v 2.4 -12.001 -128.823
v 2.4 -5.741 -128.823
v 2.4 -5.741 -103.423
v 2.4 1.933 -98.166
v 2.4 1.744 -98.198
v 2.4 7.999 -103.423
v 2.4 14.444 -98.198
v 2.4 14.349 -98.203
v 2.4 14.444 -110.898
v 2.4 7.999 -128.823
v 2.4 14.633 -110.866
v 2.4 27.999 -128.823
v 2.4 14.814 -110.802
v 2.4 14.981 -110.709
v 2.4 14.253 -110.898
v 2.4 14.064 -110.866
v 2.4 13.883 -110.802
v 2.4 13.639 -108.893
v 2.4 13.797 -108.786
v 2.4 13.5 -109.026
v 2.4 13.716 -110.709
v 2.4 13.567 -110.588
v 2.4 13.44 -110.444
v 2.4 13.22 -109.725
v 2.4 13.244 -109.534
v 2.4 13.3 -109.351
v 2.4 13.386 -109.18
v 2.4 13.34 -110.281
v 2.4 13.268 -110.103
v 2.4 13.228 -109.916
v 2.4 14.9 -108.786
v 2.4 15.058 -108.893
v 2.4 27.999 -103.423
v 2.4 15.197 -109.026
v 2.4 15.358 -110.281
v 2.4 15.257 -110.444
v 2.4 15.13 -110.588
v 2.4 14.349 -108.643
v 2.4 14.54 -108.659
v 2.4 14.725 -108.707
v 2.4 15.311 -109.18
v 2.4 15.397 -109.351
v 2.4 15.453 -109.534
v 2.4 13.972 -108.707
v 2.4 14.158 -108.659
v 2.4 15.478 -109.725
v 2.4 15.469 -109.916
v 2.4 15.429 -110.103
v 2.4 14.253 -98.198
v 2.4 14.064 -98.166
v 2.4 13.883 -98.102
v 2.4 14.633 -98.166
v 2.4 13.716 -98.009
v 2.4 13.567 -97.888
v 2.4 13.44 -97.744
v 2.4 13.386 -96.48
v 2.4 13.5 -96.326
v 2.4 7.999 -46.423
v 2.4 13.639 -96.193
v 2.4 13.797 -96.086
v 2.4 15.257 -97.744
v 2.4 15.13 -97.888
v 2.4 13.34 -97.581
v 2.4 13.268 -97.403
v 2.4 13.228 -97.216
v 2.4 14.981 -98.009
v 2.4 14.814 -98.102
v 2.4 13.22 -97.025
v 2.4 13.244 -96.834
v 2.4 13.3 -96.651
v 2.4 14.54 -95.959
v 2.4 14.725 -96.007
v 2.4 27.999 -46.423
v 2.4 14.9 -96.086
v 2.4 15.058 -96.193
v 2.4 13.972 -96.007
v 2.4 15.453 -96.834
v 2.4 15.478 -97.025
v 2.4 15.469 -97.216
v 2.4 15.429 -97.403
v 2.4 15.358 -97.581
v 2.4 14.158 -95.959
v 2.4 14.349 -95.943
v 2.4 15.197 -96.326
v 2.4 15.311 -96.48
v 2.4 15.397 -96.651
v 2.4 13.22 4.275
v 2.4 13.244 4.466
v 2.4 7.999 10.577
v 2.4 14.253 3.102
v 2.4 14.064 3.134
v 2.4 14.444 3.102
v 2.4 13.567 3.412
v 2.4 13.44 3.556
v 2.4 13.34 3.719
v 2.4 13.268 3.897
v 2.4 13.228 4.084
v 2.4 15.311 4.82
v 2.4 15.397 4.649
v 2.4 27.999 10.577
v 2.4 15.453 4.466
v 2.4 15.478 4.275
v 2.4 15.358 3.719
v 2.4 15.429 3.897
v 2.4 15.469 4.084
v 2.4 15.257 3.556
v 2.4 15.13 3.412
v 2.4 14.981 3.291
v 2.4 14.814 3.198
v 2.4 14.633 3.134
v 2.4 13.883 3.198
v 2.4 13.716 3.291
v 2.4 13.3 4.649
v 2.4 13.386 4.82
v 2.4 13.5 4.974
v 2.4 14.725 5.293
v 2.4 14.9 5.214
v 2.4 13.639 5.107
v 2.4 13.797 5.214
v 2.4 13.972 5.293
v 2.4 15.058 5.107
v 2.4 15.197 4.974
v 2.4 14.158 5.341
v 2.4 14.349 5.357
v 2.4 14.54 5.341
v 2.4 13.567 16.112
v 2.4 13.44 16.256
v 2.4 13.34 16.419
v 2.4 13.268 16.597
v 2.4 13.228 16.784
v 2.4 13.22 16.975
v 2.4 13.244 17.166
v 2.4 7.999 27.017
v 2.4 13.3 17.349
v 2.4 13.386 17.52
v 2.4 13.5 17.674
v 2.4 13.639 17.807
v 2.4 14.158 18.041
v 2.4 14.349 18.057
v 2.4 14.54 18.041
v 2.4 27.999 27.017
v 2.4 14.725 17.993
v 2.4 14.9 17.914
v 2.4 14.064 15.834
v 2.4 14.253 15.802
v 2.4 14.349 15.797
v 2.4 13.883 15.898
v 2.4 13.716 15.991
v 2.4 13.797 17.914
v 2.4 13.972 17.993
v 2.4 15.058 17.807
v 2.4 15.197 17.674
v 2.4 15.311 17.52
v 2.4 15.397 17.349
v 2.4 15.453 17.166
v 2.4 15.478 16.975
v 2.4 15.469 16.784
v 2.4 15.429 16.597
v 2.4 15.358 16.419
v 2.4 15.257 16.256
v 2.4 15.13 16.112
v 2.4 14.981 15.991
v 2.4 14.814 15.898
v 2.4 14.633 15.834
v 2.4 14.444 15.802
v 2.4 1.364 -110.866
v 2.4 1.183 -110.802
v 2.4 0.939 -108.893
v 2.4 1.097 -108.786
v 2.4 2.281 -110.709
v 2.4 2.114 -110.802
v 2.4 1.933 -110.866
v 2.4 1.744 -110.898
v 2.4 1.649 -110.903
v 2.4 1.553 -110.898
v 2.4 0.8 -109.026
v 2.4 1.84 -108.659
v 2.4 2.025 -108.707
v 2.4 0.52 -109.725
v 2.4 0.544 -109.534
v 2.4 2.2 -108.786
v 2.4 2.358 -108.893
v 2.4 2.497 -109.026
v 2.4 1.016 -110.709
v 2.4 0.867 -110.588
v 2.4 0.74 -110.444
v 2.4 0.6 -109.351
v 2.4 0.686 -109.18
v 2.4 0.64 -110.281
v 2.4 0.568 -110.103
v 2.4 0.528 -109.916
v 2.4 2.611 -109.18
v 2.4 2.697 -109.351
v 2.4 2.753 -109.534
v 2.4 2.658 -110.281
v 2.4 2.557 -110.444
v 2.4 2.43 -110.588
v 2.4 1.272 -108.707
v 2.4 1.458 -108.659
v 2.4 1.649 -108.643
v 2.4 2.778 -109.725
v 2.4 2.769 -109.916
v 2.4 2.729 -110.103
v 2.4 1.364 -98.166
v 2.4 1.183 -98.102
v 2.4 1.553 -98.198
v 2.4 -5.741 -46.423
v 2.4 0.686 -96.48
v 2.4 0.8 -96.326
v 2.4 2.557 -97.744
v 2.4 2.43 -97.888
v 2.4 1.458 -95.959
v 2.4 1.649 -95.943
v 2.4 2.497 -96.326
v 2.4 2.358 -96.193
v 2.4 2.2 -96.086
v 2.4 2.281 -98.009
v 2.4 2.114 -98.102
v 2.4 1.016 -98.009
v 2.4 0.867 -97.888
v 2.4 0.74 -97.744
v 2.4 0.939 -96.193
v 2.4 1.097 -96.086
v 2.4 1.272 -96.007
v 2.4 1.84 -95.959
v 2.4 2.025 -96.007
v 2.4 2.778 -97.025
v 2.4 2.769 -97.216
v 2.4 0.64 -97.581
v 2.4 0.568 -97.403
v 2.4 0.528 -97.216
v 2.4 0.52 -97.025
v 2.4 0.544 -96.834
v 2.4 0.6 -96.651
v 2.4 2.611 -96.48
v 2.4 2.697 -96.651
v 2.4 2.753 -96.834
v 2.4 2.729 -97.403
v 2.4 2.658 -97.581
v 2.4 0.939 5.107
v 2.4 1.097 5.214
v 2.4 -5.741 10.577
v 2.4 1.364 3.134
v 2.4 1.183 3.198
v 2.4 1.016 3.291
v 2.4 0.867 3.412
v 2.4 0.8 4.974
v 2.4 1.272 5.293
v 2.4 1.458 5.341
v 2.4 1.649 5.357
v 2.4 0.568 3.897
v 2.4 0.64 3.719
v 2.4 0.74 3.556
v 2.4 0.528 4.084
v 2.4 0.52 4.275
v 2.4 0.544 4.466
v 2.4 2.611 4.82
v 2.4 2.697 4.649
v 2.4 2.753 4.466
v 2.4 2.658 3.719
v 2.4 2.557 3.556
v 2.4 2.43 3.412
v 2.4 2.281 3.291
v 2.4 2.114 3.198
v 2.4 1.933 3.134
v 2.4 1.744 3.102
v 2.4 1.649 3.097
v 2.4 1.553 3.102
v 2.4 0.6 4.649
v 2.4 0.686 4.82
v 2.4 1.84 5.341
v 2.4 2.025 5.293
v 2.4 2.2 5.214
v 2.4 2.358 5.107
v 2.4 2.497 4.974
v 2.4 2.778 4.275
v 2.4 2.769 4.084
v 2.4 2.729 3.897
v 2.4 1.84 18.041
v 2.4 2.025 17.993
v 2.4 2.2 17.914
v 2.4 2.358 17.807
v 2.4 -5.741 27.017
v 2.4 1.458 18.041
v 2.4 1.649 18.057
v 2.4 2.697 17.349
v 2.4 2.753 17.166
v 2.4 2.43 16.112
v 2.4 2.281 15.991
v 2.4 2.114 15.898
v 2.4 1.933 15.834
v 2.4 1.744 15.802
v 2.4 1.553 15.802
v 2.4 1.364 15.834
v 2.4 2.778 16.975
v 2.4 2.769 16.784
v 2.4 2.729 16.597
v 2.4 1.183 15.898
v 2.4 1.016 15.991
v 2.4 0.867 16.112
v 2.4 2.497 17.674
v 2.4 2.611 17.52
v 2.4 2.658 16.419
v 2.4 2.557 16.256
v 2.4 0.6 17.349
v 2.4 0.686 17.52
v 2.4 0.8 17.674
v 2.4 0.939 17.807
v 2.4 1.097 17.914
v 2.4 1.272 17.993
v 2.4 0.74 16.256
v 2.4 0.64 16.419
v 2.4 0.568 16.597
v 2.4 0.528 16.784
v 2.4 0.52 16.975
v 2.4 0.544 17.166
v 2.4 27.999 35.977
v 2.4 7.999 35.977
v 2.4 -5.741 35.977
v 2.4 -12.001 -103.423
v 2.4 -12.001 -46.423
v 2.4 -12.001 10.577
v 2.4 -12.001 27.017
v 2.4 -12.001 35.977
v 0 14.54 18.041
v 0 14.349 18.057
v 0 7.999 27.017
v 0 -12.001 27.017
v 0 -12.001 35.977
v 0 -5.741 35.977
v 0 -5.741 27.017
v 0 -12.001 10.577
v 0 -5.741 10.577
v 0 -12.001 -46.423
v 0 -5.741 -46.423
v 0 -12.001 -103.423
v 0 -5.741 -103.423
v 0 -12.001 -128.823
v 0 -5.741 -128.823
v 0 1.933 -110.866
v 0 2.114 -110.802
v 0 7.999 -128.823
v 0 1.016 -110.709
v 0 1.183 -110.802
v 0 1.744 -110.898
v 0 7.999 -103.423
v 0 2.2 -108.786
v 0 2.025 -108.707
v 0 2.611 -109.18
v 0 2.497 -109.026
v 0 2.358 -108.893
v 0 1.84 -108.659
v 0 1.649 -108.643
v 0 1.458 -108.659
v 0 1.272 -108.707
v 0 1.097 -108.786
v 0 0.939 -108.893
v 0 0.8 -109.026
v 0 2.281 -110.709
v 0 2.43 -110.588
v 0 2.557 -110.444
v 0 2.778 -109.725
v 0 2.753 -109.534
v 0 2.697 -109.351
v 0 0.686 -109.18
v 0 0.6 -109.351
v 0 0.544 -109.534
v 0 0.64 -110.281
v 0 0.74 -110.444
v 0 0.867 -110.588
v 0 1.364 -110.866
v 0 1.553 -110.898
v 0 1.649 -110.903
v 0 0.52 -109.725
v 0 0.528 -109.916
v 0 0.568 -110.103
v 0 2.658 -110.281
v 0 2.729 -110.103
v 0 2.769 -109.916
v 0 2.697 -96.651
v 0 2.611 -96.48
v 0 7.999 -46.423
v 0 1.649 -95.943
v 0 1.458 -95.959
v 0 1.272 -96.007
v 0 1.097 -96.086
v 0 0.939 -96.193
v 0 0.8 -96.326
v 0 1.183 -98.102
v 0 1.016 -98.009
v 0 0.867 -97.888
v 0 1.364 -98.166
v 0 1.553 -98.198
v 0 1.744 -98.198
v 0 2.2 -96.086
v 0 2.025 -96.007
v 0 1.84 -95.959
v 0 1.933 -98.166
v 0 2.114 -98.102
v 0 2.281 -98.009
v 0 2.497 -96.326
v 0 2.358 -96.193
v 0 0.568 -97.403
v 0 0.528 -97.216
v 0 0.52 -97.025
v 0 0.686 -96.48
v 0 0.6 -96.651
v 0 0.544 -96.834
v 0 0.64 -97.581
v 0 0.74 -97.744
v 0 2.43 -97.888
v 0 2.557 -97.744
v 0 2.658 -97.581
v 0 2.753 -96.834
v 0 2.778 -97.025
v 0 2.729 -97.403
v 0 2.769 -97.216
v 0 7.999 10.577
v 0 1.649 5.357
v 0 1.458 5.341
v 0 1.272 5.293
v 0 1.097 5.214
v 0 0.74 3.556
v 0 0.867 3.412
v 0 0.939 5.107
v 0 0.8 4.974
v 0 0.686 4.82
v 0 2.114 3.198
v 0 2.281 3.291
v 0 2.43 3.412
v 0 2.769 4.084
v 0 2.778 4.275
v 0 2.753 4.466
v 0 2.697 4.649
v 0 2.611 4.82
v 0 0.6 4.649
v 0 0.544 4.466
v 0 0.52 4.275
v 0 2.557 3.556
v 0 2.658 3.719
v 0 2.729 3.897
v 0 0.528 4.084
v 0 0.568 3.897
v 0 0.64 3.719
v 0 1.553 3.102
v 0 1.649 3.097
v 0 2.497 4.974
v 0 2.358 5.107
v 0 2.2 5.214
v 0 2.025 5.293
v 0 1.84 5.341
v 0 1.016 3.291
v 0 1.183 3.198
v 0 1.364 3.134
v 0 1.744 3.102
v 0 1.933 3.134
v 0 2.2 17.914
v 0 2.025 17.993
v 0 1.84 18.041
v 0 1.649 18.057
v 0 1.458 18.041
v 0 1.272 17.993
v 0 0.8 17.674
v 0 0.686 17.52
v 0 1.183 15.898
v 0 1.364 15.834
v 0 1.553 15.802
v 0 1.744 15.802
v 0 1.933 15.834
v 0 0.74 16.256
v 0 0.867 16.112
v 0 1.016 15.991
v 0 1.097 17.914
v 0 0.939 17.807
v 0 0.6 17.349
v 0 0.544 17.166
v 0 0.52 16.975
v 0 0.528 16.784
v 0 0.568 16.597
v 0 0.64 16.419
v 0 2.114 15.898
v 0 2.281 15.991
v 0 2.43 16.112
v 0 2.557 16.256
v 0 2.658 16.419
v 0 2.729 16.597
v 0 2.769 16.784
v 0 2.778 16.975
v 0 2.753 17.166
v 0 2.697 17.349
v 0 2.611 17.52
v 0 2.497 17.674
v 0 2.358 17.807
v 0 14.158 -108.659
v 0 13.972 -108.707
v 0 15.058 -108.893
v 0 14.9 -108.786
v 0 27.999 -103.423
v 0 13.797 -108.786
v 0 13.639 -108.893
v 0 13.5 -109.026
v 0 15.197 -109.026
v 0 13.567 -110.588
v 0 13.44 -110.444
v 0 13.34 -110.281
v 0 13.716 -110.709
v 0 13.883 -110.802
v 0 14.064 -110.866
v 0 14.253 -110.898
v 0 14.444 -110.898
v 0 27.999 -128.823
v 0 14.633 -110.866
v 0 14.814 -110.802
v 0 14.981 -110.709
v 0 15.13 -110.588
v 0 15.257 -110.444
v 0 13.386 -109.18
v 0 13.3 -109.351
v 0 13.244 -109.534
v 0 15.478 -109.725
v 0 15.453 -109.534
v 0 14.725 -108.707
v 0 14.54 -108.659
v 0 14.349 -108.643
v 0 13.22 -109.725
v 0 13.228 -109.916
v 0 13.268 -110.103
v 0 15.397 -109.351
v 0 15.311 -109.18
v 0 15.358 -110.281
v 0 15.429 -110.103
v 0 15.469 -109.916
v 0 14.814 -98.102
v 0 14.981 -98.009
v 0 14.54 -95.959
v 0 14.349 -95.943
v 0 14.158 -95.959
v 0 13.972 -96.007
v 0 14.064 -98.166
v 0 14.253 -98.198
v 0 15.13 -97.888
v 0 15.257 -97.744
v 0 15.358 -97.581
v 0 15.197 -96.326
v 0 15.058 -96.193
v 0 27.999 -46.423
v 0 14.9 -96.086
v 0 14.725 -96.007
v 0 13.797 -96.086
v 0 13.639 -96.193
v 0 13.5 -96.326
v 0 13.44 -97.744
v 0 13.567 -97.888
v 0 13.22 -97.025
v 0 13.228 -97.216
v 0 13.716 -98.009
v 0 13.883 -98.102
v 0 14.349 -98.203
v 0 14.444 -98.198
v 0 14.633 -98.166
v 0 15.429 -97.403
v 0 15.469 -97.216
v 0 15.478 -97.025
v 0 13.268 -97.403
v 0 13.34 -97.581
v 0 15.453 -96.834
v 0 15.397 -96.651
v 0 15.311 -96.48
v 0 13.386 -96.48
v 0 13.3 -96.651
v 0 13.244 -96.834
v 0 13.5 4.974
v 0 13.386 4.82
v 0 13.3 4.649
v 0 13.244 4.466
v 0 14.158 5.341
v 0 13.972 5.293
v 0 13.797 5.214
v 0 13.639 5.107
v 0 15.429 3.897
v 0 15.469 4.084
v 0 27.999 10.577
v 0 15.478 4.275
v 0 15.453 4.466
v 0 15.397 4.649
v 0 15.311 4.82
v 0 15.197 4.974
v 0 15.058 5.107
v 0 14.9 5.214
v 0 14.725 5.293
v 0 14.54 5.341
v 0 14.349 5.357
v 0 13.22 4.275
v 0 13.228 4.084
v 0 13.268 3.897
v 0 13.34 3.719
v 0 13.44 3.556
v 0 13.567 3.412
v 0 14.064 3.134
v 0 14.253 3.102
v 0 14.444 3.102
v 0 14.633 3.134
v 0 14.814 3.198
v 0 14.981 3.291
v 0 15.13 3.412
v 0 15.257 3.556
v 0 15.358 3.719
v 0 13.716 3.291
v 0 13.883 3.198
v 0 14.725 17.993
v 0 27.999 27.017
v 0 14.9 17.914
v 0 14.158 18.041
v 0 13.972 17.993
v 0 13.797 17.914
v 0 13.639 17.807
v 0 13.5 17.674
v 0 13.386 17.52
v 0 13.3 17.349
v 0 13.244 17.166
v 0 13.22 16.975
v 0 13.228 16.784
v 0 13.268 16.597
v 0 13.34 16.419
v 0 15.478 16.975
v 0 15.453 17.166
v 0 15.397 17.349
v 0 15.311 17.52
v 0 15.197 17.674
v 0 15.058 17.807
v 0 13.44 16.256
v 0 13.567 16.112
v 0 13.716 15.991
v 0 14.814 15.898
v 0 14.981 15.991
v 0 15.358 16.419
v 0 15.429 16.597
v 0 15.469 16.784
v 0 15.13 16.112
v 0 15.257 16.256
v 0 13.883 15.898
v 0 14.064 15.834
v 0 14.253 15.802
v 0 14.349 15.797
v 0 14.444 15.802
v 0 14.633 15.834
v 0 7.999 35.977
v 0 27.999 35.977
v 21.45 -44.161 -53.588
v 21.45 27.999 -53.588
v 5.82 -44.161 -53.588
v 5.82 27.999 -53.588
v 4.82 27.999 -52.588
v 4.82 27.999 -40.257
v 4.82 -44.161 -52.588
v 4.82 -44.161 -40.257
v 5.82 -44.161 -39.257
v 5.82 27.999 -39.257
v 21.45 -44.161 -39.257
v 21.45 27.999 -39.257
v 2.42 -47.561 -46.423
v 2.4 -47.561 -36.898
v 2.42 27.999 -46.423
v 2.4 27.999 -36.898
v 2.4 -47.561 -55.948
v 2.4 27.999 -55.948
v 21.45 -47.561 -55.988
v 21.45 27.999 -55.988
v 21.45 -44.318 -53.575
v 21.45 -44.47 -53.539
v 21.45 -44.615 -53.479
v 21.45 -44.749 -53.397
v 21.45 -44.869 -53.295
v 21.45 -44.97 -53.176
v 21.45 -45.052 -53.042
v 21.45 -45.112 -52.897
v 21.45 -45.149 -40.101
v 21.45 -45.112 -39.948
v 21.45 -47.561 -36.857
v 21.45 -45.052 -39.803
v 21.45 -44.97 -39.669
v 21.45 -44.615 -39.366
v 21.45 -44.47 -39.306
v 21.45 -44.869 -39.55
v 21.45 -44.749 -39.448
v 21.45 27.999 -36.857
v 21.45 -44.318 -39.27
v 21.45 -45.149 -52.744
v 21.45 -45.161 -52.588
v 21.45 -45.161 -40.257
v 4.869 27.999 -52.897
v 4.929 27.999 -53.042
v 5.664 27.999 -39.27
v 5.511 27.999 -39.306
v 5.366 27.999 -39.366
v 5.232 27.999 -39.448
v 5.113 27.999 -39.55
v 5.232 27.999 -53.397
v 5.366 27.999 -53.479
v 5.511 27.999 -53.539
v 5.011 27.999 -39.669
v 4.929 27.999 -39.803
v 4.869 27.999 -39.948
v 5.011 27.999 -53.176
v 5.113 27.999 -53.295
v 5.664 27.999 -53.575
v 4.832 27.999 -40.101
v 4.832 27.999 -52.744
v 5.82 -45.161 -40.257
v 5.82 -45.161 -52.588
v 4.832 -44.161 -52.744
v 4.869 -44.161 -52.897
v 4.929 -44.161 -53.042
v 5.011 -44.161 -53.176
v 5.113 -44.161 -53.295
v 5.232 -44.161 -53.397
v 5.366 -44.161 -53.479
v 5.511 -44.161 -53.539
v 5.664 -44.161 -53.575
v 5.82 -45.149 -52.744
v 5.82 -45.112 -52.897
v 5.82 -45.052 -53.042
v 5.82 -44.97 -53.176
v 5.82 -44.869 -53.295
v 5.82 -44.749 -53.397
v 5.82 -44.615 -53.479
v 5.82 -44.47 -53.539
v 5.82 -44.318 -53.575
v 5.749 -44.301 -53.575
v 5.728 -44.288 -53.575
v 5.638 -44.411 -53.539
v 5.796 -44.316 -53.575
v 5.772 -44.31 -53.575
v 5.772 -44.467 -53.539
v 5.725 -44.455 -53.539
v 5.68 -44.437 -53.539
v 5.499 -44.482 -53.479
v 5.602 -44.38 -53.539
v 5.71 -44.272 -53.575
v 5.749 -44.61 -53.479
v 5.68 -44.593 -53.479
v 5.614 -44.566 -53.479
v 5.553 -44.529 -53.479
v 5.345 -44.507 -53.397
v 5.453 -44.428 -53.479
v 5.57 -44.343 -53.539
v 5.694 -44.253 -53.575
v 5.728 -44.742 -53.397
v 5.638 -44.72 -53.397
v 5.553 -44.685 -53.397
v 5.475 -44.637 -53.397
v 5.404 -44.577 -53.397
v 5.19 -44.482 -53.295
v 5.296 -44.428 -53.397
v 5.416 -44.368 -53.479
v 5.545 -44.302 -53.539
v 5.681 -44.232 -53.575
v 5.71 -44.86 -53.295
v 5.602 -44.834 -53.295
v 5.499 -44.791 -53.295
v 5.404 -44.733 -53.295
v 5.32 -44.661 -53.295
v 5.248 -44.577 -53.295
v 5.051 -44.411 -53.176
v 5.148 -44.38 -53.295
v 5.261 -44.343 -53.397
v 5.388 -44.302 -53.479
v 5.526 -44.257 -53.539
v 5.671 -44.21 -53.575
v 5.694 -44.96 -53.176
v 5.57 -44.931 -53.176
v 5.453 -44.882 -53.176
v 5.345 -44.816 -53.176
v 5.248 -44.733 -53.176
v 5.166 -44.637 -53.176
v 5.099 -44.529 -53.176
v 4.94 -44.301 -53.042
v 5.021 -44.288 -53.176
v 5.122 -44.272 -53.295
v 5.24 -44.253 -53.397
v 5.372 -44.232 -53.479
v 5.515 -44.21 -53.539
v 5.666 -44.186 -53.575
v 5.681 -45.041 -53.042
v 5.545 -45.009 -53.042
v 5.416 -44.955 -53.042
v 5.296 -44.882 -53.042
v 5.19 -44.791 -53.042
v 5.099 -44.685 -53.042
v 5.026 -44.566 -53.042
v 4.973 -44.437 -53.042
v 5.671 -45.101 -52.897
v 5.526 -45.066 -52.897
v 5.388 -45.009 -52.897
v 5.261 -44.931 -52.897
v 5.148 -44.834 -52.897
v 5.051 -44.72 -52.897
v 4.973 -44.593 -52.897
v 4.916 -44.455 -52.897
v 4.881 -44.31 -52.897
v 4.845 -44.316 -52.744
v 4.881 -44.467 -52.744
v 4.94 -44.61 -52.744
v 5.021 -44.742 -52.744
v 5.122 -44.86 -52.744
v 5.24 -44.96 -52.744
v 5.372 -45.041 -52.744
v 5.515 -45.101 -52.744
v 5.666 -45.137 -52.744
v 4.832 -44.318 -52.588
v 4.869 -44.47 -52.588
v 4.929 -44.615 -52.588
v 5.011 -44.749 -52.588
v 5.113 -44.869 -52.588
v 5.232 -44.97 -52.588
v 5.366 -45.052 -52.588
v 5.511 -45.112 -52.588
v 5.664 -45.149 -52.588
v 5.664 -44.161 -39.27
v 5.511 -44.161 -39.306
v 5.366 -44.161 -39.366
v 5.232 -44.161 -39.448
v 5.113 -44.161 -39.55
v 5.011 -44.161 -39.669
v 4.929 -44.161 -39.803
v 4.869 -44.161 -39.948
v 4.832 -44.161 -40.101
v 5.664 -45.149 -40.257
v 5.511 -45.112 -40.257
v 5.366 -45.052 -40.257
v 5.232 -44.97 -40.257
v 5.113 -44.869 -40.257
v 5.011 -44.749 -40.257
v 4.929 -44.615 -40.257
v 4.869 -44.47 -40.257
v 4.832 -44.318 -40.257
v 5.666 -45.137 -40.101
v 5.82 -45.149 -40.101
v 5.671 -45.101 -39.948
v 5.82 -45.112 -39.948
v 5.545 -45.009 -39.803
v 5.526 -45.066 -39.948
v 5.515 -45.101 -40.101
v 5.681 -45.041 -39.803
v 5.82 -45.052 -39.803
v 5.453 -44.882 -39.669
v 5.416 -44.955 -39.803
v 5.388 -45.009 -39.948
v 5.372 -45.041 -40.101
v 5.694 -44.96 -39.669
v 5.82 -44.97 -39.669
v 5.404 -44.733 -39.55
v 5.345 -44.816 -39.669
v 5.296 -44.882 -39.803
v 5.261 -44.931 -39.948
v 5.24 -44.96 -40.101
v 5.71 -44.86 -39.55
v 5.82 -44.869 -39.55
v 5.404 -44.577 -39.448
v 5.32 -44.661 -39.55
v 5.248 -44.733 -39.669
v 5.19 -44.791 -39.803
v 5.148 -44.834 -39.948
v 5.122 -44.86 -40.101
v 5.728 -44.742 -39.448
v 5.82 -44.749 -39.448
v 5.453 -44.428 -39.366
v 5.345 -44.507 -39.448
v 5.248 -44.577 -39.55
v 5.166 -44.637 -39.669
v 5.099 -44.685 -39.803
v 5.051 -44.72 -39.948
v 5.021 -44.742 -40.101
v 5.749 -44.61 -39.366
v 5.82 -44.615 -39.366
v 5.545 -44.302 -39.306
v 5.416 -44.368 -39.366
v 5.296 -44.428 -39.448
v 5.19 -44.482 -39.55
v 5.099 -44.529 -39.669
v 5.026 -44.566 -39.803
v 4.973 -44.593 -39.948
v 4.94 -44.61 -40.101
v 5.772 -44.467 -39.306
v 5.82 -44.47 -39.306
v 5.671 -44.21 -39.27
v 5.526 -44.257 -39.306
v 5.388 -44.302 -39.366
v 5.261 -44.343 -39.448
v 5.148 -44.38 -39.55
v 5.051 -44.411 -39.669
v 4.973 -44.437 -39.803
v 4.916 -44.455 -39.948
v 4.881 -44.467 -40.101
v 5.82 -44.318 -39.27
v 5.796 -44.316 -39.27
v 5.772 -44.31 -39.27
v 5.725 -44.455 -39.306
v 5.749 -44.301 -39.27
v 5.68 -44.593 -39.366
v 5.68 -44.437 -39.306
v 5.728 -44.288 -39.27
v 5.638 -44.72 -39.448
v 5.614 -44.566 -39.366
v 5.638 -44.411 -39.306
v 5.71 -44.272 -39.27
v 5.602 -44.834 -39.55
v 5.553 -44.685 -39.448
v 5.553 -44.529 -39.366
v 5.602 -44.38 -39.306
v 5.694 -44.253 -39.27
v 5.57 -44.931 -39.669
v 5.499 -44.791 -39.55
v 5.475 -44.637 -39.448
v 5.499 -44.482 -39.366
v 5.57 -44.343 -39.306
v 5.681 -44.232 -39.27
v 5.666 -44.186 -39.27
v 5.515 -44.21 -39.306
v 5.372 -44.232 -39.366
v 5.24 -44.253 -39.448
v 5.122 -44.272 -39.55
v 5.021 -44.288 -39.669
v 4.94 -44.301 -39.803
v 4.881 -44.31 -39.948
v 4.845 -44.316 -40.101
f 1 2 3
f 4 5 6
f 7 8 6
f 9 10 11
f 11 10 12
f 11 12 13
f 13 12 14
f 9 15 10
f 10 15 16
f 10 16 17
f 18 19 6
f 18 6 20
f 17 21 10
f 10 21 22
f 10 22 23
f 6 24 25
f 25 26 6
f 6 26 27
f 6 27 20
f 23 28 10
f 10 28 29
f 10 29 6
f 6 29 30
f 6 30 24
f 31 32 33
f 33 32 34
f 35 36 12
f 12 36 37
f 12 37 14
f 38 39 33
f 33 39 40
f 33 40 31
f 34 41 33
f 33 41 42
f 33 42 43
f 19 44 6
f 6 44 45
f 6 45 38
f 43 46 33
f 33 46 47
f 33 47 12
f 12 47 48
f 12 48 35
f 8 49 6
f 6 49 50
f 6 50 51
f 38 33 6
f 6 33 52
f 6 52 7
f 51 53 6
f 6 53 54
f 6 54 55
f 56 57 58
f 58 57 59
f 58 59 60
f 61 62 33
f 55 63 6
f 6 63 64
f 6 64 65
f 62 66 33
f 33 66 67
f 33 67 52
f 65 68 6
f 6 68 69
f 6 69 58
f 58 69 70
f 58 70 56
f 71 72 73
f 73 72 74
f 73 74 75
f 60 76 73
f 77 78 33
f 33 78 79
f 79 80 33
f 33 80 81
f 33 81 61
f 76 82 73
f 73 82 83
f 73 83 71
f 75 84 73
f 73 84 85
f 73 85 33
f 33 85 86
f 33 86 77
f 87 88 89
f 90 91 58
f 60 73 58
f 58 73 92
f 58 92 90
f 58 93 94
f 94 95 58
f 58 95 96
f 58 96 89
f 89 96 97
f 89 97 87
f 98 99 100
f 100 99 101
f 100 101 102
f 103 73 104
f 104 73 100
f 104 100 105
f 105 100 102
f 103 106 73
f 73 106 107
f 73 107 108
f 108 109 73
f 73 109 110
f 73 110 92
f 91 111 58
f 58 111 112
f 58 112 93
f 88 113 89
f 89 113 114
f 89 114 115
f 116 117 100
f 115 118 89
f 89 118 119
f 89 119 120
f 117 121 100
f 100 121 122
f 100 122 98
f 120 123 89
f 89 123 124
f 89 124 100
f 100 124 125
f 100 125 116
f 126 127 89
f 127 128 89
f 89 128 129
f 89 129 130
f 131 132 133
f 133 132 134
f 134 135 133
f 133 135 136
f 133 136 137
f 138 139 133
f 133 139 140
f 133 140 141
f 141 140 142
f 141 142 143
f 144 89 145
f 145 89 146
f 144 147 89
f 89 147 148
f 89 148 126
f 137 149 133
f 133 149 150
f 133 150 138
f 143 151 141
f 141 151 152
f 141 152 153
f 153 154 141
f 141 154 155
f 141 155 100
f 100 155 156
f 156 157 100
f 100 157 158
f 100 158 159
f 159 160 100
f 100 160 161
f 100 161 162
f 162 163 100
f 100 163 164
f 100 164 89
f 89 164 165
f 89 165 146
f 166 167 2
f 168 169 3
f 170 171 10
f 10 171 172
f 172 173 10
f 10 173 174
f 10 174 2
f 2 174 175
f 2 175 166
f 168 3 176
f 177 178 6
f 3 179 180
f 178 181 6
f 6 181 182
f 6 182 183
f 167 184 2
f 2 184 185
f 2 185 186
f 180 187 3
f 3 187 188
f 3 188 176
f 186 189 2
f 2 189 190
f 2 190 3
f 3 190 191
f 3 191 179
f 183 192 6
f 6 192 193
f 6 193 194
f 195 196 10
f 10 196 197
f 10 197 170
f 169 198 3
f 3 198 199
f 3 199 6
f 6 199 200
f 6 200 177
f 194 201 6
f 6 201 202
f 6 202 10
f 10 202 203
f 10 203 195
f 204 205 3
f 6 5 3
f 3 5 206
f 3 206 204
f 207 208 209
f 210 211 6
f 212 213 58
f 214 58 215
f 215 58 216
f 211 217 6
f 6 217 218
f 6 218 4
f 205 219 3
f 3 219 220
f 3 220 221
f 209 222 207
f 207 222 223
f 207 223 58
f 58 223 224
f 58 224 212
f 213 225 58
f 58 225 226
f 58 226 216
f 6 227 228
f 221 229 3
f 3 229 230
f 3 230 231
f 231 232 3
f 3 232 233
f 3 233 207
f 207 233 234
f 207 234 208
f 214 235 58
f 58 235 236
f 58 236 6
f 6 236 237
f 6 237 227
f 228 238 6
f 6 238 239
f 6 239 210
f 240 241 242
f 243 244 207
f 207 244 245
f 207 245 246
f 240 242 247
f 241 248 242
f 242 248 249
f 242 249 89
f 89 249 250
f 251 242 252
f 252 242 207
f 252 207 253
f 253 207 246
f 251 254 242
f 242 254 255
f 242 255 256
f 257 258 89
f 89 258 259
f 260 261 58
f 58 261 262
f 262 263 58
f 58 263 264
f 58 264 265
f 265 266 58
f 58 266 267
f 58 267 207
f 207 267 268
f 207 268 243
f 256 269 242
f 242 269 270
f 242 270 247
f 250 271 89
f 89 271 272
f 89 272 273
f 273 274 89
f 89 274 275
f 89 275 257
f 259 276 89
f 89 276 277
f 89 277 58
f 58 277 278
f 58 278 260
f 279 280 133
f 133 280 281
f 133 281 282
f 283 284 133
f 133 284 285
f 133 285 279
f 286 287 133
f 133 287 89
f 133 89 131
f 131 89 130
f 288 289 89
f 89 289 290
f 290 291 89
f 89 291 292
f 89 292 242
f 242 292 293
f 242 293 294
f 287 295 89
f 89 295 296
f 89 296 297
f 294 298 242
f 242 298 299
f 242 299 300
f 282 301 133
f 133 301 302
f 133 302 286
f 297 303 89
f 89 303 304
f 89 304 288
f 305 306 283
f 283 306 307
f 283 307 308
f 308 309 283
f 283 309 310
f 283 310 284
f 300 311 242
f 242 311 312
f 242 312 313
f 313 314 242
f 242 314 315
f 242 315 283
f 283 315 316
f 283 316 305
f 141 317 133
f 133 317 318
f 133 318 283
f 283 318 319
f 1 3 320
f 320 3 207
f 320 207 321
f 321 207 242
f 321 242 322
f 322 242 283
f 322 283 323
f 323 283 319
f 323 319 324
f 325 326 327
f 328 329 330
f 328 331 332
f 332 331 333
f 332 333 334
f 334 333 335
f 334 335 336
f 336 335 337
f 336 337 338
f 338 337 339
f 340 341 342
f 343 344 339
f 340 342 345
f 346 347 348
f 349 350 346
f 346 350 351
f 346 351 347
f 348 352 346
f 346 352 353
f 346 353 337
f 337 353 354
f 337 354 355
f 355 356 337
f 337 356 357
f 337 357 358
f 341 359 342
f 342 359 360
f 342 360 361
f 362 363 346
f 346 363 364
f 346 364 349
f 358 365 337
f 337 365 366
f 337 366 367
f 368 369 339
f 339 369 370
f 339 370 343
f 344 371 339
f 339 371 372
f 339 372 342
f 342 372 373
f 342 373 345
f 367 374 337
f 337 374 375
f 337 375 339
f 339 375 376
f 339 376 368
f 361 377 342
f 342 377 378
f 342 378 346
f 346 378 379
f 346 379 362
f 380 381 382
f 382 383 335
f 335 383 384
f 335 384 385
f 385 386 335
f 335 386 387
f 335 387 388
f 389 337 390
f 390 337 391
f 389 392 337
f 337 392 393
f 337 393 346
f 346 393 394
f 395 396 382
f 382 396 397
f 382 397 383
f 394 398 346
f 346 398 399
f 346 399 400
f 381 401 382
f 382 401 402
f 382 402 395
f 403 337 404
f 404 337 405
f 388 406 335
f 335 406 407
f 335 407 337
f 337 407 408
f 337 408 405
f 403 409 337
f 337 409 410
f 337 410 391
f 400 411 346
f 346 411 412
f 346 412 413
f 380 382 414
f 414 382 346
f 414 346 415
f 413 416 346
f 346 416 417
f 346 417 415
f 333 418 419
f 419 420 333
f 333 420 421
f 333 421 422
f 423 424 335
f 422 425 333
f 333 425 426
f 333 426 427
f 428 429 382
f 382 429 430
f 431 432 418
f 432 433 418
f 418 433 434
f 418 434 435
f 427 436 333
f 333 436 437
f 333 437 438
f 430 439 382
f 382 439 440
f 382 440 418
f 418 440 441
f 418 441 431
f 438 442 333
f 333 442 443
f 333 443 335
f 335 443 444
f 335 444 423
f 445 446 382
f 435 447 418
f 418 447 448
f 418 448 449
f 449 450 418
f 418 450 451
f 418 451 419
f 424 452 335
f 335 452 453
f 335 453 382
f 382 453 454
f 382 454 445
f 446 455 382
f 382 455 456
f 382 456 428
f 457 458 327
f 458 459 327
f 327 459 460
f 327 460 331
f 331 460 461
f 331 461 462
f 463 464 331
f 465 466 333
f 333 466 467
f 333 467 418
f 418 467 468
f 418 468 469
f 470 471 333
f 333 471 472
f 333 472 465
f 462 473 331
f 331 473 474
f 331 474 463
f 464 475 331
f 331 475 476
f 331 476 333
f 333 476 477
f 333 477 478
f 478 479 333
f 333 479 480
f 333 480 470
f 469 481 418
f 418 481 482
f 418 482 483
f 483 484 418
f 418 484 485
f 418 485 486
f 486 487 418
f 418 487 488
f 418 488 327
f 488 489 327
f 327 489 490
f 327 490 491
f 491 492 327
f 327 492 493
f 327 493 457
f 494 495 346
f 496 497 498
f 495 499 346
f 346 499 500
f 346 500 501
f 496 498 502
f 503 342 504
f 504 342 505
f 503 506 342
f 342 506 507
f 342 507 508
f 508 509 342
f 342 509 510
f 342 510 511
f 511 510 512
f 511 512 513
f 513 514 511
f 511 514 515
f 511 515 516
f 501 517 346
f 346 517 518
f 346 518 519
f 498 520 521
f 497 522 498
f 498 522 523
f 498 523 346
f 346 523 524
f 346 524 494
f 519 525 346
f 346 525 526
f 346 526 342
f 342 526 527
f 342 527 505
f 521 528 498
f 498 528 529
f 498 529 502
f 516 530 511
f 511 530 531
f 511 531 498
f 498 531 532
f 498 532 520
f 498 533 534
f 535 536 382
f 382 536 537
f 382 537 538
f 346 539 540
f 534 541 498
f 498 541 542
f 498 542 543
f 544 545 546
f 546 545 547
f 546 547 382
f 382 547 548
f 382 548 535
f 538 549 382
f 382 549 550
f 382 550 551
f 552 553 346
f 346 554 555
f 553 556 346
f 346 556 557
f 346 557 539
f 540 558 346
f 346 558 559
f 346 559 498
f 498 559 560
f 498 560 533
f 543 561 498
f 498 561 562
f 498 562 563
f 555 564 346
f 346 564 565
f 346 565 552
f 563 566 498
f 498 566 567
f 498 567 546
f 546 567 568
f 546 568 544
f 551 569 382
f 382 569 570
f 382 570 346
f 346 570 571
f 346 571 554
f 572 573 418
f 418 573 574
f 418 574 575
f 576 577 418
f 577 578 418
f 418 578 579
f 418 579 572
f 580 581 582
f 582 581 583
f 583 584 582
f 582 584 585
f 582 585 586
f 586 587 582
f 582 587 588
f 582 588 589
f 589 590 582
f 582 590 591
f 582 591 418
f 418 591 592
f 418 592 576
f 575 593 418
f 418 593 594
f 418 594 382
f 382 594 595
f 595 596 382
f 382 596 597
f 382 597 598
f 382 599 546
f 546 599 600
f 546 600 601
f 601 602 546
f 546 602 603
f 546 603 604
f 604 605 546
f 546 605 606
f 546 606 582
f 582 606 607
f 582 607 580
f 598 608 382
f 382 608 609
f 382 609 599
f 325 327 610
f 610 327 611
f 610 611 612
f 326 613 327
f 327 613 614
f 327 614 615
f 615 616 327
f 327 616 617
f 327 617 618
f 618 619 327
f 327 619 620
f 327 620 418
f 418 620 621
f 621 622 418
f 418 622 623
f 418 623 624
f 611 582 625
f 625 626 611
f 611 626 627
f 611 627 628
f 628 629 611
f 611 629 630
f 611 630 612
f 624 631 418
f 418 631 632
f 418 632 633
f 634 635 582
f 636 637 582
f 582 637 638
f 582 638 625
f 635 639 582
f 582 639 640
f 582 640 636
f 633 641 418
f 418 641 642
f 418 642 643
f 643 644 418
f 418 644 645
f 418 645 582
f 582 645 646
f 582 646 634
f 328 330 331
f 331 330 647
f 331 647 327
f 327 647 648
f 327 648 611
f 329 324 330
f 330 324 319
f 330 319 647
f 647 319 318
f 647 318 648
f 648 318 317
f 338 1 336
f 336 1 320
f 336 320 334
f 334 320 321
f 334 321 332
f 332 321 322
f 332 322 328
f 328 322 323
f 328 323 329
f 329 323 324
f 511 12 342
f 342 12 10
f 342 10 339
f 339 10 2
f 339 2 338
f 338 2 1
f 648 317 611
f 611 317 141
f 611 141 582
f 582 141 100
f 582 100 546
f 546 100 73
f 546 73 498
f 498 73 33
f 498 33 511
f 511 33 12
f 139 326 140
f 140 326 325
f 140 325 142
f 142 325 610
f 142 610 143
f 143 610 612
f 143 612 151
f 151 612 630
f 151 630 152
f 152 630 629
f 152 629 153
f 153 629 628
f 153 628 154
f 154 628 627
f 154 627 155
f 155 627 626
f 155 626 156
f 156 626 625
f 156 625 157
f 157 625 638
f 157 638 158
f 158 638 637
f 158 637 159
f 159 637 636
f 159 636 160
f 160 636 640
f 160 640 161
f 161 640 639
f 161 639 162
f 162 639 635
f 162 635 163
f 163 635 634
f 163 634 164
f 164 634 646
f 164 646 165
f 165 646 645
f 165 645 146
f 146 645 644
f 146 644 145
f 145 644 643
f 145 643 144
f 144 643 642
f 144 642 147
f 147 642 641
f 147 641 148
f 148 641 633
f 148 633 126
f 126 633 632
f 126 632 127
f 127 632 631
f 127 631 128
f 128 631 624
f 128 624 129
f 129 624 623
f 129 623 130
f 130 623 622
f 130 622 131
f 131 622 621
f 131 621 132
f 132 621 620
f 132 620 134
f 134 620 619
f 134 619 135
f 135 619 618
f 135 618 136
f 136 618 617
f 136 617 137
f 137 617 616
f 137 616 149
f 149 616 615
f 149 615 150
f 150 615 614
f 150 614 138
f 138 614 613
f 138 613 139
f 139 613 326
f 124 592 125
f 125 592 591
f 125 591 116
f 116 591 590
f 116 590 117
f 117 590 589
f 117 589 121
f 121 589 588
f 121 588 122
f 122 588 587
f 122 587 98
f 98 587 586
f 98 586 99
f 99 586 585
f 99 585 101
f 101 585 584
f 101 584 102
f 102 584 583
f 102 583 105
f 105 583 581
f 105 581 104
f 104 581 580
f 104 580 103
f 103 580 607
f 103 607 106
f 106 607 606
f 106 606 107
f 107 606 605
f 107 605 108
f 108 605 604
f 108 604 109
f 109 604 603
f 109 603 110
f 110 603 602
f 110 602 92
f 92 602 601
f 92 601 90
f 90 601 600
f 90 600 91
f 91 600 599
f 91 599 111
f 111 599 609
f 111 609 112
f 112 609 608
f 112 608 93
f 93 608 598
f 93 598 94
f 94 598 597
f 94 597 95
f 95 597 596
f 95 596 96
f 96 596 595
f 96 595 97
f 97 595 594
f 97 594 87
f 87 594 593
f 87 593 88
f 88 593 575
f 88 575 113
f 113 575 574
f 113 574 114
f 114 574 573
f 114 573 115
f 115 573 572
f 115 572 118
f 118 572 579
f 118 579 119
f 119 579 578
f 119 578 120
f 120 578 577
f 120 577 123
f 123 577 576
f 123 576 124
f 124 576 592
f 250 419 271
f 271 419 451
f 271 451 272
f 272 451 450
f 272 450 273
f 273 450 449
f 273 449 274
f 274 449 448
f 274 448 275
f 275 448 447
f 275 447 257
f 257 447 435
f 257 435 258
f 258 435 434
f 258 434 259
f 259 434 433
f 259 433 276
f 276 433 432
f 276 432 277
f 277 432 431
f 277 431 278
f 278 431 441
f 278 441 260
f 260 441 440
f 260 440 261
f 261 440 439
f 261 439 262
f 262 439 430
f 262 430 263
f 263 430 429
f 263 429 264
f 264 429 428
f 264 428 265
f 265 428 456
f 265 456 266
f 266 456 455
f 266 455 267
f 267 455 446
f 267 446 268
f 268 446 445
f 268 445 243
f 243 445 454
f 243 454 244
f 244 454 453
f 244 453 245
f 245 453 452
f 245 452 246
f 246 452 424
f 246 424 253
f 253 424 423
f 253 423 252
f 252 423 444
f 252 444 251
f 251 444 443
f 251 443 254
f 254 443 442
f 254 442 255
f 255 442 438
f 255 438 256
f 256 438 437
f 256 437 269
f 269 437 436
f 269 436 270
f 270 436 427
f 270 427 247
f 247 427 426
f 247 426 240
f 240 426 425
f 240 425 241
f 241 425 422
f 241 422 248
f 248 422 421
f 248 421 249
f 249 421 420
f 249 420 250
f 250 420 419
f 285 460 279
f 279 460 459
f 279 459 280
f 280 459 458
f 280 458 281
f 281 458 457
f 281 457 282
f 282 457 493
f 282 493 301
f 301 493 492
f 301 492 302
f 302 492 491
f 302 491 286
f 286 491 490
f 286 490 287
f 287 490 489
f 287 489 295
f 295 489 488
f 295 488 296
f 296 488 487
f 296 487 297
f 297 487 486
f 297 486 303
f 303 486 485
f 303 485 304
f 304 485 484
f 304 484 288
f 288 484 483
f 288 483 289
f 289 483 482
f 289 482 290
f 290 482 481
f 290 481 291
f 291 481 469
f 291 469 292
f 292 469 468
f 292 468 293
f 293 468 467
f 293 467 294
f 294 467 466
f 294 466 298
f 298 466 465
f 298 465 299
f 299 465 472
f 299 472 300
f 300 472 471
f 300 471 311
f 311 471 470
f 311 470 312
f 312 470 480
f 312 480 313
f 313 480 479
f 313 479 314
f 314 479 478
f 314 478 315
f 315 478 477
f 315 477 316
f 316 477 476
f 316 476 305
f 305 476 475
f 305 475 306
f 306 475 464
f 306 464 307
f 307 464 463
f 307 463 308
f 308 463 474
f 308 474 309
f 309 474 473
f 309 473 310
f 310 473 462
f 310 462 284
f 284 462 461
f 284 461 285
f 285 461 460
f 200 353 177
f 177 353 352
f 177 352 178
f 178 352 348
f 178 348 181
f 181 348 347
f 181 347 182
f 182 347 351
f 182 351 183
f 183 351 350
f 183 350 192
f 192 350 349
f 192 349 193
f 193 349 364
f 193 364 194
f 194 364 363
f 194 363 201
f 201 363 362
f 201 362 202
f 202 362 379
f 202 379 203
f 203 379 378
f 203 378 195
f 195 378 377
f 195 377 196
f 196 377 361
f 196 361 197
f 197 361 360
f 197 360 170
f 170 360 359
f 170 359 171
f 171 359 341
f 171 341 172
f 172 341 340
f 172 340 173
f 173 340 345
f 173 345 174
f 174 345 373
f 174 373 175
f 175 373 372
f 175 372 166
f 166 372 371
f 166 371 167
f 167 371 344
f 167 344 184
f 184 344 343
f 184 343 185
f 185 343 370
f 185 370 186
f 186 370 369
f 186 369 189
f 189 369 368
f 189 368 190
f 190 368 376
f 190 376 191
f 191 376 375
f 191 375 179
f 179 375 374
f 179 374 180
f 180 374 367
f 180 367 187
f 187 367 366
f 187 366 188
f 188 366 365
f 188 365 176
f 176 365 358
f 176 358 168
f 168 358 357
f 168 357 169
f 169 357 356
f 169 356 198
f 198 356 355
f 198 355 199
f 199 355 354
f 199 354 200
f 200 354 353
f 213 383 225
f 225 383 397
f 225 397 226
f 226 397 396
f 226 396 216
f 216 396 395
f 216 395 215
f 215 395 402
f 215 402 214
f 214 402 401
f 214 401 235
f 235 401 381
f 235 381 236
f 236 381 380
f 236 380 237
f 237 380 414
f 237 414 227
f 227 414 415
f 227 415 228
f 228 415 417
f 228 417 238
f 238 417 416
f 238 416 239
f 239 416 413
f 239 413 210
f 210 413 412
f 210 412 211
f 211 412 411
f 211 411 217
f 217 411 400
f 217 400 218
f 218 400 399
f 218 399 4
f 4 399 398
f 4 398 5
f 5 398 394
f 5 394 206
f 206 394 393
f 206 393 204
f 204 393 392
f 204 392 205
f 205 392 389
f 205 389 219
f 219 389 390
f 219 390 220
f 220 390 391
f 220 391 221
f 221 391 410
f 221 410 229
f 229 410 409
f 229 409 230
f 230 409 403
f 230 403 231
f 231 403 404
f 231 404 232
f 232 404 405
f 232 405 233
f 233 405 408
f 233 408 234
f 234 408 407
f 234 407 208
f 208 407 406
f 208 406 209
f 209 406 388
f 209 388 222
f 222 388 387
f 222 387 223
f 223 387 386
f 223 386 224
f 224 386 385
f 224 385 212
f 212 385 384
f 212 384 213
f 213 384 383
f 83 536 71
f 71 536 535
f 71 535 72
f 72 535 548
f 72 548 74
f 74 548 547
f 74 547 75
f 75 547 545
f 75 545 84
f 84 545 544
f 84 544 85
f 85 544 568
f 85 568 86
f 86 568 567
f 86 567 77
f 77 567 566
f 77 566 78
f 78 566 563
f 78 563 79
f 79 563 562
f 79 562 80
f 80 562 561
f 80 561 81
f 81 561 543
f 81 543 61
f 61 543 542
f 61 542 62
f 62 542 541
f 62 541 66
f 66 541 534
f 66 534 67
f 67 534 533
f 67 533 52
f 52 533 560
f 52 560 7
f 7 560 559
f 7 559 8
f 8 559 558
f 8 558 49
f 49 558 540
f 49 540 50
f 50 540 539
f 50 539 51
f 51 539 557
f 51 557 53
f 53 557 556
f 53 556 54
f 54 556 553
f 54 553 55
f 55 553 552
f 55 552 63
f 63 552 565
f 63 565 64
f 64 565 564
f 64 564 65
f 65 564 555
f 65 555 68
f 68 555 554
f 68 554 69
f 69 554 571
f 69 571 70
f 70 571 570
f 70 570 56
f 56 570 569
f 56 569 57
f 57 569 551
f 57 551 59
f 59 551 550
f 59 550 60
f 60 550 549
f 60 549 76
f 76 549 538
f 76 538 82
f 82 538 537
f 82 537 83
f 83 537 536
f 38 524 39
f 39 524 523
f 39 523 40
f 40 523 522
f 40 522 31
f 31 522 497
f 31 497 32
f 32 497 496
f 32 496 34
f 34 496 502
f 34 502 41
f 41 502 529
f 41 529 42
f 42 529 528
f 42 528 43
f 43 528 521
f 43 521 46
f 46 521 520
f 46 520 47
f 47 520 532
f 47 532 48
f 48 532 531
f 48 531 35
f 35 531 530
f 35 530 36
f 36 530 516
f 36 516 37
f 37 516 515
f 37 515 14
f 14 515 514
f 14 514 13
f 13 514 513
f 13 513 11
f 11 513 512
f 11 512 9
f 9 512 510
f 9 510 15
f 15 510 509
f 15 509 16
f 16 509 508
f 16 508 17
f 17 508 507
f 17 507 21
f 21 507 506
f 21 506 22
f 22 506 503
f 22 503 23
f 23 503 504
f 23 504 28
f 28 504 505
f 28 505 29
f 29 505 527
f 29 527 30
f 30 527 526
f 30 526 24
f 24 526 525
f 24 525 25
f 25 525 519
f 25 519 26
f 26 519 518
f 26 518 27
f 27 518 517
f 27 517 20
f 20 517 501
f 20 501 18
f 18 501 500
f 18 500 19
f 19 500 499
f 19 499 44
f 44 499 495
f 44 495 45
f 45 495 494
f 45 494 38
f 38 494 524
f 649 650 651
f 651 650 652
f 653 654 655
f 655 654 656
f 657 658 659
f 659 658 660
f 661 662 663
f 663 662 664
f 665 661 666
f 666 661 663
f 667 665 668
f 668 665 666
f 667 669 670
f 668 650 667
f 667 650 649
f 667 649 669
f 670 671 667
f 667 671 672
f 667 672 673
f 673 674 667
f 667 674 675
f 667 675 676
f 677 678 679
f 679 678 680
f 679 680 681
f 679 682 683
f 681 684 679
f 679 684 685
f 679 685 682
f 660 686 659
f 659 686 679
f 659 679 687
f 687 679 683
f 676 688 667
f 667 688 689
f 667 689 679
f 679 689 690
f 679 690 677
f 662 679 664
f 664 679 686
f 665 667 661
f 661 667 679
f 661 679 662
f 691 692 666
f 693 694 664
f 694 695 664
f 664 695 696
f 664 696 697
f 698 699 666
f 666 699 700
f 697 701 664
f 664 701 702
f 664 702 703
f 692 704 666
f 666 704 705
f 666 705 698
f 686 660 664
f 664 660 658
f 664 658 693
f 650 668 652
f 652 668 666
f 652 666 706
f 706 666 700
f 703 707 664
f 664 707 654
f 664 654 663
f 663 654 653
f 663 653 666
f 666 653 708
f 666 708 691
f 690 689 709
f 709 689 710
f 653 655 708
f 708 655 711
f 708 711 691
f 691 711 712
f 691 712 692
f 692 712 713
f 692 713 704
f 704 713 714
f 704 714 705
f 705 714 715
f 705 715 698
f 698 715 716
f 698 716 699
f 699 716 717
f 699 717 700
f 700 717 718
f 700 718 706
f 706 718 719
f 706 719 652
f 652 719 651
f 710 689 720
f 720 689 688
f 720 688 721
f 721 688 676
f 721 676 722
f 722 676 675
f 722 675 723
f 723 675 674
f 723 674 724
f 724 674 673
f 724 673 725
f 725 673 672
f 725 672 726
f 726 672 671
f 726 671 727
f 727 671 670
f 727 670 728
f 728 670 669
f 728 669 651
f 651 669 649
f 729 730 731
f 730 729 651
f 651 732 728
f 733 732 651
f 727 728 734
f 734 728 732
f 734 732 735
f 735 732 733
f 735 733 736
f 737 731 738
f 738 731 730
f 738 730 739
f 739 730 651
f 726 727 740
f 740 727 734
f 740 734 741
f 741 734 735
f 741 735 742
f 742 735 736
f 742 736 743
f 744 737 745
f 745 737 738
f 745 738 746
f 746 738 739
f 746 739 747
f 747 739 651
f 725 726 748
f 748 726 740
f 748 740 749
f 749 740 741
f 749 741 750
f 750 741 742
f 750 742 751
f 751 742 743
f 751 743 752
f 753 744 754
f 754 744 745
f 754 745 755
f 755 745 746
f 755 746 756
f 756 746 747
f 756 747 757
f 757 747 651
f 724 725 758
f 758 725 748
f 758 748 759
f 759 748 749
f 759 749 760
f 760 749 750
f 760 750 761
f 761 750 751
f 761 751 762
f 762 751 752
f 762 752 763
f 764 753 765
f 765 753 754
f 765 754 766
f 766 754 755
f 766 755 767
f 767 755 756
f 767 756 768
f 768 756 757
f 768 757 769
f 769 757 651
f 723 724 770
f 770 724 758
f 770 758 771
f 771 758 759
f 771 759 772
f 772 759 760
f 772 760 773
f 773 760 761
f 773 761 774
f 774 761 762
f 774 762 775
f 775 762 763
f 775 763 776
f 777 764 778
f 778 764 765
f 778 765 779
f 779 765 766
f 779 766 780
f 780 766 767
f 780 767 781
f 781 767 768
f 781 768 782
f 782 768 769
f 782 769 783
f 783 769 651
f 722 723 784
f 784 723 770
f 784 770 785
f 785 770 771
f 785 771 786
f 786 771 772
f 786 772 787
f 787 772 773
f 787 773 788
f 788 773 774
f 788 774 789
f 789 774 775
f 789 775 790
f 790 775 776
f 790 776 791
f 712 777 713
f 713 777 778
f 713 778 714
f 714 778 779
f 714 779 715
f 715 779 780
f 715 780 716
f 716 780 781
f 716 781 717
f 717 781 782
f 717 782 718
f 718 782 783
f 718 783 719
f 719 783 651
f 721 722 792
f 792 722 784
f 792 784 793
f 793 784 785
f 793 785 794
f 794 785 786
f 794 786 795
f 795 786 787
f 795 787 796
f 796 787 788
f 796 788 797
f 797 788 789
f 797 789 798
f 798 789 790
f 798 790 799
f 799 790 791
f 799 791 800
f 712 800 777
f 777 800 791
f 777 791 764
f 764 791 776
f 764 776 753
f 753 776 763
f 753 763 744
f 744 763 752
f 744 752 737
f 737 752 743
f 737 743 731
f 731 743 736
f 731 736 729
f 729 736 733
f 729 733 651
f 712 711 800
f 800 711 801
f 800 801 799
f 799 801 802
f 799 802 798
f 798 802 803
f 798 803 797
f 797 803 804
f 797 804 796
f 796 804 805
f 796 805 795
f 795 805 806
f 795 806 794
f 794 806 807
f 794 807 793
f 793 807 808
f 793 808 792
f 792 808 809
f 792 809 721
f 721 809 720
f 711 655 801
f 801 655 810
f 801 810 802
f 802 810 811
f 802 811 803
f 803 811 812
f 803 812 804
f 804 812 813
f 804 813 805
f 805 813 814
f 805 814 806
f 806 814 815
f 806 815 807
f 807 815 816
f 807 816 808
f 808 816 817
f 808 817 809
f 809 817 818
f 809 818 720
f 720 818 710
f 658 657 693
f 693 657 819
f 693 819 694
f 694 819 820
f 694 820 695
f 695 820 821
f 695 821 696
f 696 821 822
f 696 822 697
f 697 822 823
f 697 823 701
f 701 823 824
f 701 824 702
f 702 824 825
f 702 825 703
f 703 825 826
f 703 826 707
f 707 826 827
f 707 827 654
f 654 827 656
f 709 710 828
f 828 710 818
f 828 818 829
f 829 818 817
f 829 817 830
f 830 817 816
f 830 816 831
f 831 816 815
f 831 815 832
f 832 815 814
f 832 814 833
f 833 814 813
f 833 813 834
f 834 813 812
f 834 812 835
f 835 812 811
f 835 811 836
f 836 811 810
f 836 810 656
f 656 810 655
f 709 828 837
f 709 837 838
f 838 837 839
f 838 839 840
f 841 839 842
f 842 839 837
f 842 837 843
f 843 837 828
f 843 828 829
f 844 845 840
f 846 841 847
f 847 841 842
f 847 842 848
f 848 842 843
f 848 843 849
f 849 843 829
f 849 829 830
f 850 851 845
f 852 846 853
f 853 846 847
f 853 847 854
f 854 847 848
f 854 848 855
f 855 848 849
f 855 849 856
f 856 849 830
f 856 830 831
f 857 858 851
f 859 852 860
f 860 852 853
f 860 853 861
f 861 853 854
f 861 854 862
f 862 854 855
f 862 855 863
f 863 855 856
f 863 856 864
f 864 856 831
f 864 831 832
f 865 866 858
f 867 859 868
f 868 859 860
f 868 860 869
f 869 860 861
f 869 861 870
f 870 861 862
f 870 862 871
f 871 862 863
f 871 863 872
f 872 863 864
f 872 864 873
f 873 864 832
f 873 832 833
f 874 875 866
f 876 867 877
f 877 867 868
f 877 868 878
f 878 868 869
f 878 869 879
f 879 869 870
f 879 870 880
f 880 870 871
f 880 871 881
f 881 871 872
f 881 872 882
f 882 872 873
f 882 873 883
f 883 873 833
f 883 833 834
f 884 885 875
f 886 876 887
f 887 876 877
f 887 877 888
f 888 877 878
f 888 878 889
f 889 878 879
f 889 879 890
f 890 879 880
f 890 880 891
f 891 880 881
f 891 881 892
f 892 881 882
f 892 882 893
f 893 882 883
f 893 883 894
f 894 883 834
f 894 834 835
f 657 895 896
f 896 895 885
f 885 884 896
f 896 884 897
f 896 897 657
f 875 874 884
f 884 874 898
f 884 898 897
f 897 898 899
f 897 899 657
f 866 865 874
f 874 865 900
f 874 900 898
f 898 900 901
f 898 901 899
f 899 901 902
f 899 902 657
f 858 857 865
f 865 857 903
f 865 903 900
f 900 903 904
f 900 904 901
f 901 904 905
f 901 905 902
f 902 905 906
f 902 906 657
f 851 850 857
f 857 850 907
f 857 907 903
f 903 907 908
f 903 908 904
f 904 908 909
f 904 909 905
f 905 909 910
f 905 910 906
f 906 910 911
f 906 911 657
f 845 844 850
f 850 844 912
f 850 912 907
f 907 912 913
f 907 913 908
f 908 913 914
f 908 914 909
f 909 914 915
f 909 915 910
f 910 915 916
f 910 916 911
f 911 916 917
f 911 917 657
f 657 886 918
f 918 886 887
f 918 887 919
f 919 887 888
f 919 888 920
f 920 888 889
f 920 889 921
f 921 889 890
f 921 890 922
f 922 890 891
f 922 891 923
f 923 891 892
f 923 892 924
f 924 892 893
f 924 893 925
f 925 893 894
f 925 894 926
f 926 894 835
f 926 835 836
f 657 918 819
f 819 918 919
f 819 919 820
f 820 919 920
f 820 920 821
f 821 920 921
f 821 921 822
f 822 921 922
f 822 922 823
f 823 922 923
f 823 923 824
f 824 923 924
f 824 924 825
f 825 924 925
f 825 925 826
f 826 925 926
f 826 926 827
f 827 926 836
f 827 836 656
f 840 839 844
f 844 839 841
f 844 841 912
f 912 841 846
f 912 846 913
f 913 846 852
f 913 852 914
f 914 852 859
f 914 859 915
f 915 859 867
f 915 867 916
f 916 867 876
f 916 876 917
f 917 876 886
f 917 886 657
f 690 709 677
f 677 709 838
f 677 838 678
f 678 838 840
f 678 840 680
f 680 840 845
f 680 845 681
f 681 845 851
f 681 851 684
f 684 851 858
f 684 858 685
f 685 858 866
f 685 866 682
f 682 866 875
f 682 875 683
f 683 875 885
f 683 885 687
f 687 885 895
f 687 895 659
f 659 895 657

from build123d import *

# Parameters (mm, degrees)
SKETCH1_W           = 164.8
SKETCH1_H           = 40
SKETCH1_R           = 1.13
BOSS_EXTRUDE1_DEPTH = 2.4
BOSS_EXTRUDE2_DEPTH = 75.56
SKETCH3_W           = 16.629876975
SKETCH3_H           = 14.330492101
BOSS_EXTRUDE3_DEPTH = 2.4
FILLET1_R           = 1


with BuildPart() as part:
    # Sketch1 → Boss-Extrude1 (new body)
    with BuildSketch(Plane(origin=(0, 0, 0), x_dir=(0, 0, -1), z_dir=(1, 0, 0))):
        with Locations((46.422535211, 7.998591549)):
            Rectangle(SKETCH1_W, SKETCH1_H)
        with Locations((-16.927464789, 14.348591549)):
            Circle(SKETCH1_R, mode=Mode.SUBTRACT)
        with Locations(Location((-4.227464789, 14.348591549, 0), (0, 0, 180))):
            Circle(SKETCH1_R, mode=Mode.SUBTRACT)
        with Locations((-4.227464789, 1.648591549)):
            Circle(SKETCH1_R, mode=Mode.SUBTRACT)
        with Locations(Location((-16.927464789, 1.648591549, 0), (0, 0, 180))):
            Circle(SKETCH1_R, mode=Mode.SUBTRACT)
        with Locations((109.772535211, 1.648591549)):
            Circle(SKETCH1_R, mode=Mode.SUBTRACT)
        with Locations(Location((97.072535211, 1.648591549, 0), (0, 0, 180))):
            Circle(SKETCH1_R, mode=Mode.SUBTRACT)
        with Locations((97.072535211, 14.348591549)):
            Circle(SKETCH1_R, mode=Mode.SUBTRACT)
        with Locations(Location((109.772535211, 14.348591549, 0), (0, 0, 180))):
            Circle(SKETCH1_R, mode=Mode.SUBTRACT)
    extrude(amount=BOSS_EXTRUDE1_DEPTH)


with BuildPart() as body_2:
    # Sketch2 → Boss-Extrude2 (new body)
    with BuildSketch(Plane(origin=(0, 27.998591549, 0), x_dir=(1, 0, 0), z_dir=(0, 1, 0))):
        Polygon((2.4, 55.947535211), (21.45, 55.987781262), (21.45, 53.587781262), (4.820123025, 53.587781262), (4.820123025, 39.257289161), (21.45, 39.257289161), (21.45, 36.857289161), (2.4, 36.897535211), (2.420123025, 46.422535211), align=None)
    extrude(amount=-BOSS_EXTRUDE2_DEPTH)

    # Sketch3 → Boss-Extrude3 (add)
    with BuildSketch(Plane.XZ.offset(47.561408451)):
        with Locations((13.135061513, -46.422535212)):
            Rectangle(SKETCH3_W, SKETCH3_H)
    extrude(amount=-BOSS_EXTRUDE3_DEPTH)

    # Fillet1
    fillet1_edges = [body_2.edges().sort_by_distance(p)[0] for p in [
        (4.820123025, -8.581408451, -39.257289161),
        (4.820123025, -8.581408451, -53.587781262),
        (4.820123025, -45.161408451, -46.422535211),
        (13.135061513, -45.161408451, -39.257289161),
        (13.135061513, -45.161408451, -53.587781262),
    ]]
    fillet(fillet1_edges, radius=FILLET1_R)


solid = Compound([part.part, body_2.part])
